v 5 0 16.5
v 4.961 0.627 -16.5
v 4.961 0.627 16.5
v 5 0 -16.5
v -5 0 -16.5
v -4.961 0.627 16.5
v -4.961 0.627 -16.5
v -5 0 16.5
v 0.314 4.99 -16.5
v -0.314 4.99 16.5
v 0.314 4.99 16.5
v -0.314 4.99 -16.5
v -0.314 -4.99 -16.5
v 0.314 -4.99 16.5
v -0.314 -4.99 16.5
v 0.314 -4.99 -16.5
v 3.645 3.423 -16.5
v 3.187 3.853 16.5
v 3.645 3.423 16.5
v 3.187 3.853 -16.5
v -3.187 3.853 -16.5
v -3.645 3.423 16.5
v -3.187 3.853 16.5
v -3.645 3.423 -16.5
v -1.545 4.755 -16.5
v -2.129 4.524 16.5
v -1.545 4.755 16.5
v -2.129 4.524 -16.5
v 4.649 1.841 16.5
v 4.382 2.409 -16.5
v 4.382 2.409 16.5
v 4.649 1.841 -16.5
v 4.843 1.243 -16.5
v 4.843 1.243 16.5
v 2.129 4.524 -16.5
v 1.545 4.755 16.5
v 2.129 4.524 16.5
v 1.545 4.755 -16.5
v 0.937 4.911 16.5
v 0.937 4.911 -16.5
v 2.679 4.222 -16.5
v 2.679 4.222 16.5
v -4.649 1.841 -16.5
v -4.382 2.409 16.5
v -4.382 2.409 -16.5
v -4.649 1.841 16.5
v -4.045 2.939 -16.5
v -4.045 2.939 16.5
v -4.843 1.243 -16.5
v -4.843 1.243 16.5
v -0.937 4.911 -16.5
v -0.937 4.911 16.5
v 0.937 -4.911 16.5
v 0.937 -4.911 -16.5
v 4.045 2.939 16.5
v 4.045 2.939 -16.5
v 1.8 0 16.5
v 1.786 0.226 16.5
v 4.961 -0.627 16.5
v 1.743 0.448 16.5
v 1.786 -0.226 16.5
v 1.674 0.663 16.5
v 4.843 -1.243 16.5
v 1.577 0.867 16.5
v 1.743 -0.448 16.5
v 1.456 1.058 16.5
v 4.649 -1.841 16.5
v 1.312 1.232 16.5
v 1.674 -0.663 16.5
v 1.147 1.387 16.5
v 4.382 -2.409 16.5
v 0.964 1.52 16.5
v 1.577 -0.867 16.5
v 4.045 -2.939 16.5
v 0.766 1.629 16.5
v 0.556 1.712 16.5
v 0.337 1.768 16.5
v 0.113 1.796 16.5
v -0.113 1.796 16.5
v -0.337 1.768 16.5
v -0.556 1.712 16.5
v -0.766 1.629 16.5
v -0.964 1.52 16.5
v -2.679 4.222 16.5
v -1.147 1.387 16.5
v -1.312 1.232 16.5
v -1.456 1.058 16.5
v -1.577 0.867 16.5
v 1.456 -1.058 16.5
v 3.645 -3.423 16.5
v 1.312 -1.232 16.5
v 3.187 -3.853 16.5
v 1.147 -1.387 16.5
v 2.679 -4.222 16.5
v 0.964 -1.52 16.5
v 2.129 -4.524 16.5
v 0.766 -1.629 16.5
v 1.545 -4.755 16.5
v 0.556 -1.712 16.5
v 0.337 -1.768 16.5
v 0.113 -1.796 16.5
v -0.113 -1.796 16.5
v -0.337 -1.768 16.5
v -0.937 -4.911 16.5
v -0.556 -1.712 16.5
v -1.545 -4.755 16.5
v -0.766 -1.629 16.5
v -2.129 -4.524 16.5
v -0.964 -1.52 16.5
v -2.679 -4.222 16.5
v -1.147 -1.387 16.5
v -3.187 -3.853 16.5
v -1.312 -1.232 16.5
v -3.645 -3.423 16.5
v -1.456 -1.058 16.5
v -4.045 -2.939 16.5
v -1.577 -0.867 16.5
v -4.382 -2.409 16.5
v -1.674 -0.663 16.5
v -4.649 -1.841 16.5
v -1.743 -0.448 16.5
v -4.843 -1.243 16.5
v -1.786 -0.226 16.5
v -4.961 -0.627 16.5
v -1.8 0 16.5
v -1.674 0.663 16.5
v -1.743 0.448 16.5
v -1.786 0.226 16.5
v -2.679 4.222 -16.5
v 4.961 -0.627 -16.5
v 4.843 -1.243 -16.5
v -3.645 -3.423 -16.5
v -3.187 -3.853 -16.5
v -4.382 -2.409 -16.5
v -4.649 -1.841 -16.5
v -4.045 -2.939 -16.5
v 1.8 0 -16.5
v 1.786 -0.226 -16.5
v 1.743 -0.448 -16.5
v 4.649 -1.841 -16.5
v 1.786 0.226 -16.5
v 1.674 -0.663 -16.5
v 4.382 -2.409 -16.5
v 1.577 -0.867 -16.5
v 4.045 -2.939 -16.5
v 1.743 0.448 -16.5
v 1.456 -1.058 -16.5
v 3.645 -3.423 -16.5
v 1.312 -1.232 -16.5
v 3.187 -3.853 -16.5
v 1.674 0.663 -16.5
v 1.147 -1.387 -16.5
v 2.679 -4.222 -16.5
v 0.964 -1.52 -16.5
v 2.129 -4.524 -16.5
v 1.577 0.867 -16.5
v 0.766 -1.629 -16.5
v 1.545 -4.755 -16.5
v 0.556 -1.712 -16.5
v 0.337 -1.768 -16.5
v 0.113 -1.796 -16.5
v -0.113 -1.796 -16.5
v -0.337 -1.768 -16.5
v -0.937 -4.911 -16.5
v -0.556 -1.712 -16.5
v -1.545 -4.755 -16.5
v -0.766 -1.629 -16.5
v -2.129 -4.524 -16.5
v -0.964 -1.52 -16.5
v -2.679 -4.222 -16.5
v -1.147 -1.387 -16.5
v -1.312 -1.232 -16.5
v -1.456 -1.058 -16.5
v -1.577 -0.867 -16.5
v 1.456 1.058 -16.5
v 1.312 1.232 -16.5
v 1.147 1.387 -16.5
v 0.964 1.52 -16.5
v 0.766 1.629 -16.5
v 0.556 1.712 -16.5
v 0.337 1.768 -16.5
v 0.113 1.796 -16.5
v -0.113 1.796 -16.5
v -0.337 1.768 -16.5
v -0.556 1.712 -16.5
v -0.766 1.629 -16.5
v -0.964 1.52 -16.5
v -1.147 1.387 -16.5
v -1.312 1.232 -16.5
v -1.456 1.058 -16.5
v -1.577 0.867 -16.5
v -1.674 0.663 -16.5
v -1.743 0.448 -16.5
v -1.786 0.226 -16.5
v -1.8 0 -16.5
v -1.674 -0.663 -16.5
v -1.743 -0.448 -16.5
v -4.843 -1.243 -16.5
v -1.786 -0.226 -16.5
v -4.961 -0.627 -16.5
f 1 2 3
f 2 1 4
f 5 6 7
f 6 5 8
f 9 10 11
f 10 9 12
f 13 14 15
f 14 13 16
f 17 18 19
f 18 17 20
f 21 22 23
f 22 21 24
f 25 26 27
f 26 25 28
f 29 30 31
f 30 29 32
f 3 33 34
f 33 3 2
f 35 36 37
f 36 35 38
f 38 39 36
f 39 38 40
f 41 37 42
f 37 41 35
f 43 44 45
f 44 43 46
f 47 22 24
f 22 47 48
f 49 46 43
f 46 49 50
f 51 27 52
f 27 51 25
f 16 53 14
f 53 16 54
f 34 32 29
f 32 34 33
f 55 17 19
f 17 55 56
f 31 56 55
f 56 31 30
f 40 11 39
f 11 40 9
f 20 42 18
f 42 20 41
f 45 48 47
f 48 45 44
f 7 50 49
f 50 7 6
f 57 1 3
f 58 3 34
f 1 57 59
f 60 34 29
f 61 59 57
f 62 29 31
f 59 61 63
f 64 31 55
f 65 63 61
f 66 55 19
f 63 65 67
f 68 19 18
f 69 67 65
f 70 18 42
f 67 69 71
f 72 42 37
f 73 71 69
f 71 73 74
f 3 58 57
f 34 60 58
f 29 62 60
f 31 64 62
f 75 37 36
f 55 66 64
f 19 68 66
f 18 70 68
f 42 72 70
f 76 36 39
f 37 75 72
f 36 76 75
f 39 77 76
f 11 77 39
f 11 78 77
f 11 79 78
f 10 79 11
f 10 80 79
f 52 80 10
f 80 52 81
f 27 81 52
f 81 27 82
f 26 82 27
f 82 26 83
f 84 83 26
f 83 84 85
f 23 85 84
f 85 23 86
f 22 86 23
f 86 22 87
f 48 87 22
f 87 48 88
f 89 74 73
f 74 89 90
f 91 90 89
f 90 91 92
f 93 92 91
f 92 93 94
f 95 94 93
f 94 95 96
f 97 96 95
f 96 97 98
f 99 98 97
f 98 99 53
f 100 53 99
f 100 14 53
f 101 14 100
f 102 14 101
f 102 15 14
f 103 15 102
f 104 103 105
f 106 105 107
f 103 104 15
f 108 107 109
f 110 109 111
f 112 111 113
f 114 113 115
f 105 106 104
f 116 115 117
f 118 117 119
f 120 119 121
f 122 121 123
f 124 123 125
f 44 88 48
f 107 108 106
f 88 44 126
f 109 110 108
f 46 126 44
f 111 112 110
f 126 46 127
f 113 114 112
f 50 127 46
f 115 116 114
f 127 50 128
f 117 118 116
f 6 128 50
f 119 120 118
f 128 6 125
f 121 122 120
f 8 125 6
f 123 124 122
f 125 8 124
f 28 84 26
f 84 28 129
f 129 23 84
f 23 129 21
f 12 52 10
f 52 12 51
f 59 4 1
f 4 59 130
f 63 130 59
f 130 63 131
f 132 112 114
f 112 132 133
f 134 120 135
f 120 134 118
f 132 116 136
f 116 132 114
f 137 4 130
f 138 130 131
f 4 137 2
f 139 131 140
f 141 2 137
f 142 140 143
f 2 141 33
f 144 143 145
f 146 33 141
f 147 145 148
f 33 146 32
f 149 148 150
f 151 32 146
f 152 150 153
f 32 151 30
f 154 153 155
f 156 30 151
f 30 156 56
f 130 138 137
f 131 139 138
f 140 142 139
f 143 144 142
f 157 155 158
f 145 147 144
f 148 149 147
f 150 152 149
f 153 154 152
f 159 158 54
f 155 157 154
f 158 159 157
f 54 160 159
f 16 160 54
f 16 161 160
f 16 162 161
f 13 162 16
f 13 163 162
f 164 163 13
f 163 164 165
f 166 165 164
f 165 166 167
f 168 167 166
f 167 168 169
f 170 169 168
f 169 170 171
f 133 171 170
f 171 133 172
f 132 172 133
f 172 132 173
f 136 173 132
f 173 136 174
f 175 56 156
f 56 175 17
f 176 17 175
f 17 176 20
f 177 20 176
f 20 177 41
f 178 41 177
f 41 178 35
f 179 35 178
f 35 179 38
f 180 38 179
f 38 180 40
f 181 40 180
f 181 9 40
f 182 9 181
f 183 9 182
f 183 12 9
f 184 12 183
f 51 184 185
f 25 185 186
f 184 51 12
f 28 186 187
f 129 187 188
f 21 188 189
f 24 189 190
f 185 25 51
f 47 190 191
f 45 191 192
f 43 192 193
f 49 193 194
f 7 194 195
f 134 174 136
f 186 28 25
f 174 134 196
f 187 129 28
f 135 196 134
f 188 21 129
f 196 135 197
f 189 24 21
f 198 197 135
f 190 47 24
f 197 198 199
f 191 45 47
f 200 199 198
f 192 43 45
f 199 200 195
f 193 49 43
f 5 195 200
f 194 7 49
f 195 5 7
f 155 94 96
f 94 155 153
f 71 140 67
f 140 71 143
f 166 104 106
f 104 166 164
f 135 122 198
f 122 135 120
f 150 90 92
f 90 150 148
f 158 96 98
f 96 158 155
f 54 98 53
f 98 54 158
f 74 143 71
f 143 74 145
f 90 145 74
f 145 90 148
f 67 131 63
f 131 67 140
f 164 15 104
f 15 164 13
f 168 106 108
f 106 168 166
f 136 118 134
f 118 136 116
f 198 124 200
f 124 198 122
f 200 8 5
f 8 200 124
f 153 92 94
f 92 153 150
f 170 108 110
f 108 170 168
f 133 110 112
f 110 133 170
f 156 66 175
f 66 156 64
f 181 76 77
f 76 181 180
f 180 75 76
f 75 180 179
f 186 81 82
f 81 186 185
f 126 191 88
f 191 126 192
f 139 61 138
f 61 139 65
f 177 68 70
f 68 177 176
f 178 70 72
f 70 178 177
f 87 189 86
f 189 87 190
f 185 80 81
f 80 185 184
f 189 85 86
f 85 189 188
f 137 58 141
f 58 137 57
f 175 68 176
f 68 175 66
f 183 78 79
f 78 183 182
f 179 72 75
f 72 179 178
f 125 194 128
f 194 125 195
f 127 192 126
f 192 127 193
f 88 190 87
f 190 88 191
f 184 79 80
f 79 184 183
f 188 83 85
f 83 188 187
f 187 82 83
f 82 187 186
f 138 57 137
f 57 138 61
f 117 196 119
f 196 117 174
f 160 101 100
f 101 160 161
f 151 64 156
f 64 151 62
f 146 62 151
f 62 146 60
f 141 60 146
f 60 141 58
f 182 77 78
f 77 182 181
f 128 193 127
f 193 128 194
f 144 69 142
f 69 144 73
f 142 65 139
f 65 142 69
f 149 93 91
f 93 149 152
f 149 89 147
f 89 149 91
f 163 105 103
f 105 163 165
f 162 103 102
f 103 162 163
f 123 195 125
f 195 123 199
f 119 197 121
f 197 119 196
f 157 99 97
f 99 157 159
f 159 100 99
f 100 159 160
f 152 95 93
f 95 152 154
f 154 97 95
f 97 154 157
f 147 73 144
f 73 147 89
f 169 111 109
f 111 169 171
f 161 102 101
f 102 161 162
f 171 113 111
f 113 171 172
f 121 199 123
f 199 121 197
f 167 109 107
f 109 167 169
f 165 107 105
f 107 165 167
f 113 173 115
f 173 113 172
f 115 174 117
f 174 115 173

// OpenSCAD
$fn = 50;


difference() {
	union() {
		translate(v = [0, 0, -16.5000000000]) {
			cylinder(h = 33, r = 5.0000000000);
		}
	}
	union() {
		translate(v = [0, 0, -100.0000000000]) {
			cylinder(h = 200, r = 1.8000000000);
		}
	}
}
